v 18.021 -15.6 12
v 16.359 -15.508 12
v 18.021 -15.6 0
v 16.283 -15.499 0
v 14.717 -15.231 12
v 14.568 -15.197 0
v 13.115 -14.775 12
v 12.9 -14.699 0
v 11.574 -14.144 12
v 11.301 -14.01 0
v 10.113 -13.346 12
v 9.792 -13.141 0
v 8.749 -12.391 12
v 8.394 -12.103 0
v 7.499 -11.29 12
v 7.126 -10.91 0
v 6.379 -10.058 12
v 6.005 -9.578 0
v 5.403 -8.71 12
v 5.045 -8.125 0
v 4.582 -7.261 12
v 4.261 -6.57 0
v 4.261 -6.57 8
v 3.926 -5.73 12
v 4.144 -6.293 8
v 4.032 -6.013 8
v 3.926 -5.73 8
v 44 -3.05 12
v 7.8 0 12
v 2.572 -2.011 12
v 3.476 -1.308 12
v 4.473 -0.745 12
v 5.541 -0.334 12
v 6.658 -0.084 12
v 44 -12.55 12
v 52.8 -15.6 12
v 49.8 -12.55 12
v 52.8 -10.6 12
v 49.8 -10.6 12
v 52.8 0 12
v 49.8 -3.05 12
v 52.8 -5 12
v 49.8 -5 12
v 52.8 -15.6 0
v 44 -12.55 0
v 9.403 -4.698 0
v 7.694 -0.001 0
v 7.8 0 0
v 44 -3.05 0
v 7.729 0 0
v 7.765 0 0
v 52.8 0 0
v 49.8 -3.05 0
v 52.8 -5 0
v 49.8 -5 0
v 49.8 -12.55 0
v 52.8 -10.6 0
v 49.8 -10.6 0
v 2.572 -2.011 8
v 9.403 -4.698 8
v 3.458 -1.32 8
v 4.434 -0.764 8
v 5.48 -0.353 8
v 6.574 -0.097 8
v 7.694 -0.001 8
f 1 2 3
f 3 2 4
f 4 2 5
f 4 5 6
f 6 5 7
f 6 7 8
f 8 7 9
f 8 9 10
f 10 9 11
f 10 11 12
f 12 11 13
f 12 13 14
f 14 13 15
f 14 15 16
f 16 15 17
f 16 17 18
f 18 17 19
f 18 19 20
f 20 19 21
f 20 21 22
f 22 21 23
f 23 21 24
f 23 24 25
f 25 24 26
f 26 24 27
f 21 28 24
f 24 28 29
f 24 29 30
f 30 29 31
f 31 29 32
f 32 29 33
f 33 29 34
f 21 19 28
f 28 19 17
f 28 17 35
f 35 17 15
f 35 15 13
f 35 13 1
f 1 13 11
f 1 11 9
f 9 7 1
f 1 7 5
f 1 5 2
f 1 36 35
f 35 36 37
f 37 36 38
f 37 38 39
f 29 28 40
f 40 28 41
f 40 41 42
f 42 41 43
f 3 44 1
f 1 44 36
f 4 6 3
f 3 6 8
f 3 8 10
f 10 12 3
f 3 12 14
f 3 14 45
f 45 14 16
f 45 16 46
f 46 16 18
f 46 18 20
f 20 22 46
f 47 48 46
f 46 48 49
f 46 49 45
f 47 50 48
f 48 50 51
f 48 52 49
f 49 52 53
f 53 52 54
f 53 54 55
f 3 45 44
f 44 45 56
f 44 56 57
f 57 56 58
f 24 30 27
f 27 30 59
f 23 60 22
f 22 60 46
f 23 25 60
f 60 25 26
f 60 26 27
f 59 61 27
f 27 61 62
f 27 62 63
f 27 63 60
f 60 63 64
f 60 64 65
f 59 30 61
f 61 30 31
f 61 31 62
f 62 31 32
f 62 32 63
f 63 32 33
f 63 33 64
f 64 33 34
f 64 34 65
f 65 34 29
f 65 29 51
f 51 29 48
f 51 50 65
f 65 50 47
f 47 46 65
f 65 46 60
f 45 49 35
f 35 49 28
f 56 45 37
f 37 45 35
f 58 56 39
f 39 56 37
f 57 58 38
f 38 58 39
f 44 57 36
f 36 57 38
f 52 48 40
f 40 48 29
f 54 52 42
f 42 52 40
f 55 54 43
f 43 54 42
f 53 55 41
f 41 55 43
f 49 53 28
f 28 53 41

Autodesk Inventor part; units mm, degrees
ref_plane "YZ Plane" through (0, 0, 0) normal (1, 0, 0) x (0, 1, 0)
ref_plane "XZ Plane" through (0, 0, 0) normal (0, 1, 0) x (-1, 0, 0)
ref_plane "XY Plane" through (0, 0, 0) normal (0, 0, 1) x (1, 0, 0)
sketch "Sketch5" plane through (0, 0, 0) normal (0, 0, 1) x (1, 0, 0)
  line L0 (52.8, -15.6) -> (52.8, -10.6)
  line L1 (52.8, -10.6) -> (49.8, -10.6)
  line L2 (49.8, -10.6) -> (49.8, -12.55)
  line L3 (44, -12.55) -> (44, -3.05)
  line L4 (49.8, -3.05) -> (49.8, -5)
  line L5 (49.8, -5) -> (52.8, -5)
  line L6 (52.8, -5) -> (52.8, 0)
  line L7 (52.8, 0) -> (7.8, 0)
  line L8 (44, -3.05) -> (49.8, -3.05)
  line L9 (44, -12.55) -> (49.8, -12.55)
  line L10 (52.8, -15.6) -> (7.8, -15.6)
  arc A0 (7.8, 0) -> (7.8, -15.6) centre (7.8, -7.8) ccw
  point P0 (0, 0)
  dimension "d41" = 5.8
  dimension "d48" = 44
  dimension "d63" = 45
  dimension "d67" = 15.6
  dimension "d71" = 0
  dimension "d72" = 36.2
  dimension "d85" = 5.6
  dimension "d86" = 9.5
  dimension "d87" = 3
extrude "Extrusion2" add sketch "Sketch5" along normal blind 12
sketch "Sketch9" plane through (0, 0, 12) normal (0, 0, 1) x (1, 0, 0)
  line L0 (52.8, 0) -> (7.8, 0) projected
  line L1 (7.6933, 0) -> (9.4034, -4.6985)
  line L2 (9.4034, -4.6985) -> (0.0065, -8.1187)
  arc A0 (7.8, 0) -> (7.8, -15.6) centre (7.8, -7.8) ccw projected
  point P0 (0, 0)
  point P1 (7.6936, -0.0007)
  dimension "d89" = 5
  dimension "d92" = 110
  dimension "d93" = 10
extrude "Extrusion6" cut sketch "Sketch9" along normal blind 8 from surface at -12
sketch "Sketch11" plane through (0, 0, 12) normal (0, 0, 1) x (1, 0, 0)
  line L0 (1.7497, 0.249) -> (7.6768, -16.0354)
  line L1 (7.6768, -16.0354) -> (-2.2601, -19.6521)
  line L2 (-2.2601, -19.6521) -> (-8.1871, -3.3677)
  line L3 (-8.1871, -3.3677) -> (1.7497, 0.249)
  line L4 (7.6936, -0.0007) -> (9.4034, -4.6985) projected
  point P0 (0, 0)
  dimension "d98" = 5.5
extrude "Extrusion8" cut sketch "Sketch11" against normal through all
fillet "Fillet2" radius 15 1 edges at (7.5164, -15.5948, 6)
sketch "Sketch12" plane through (0, 0, 12) normal (0, 0, 1) x (1, 0, 0)
  point P0 (0, 0)
equation "\"l1\" = 8"
properties part number "Finray_test_8_Kerbe_20deg_V4_links"
